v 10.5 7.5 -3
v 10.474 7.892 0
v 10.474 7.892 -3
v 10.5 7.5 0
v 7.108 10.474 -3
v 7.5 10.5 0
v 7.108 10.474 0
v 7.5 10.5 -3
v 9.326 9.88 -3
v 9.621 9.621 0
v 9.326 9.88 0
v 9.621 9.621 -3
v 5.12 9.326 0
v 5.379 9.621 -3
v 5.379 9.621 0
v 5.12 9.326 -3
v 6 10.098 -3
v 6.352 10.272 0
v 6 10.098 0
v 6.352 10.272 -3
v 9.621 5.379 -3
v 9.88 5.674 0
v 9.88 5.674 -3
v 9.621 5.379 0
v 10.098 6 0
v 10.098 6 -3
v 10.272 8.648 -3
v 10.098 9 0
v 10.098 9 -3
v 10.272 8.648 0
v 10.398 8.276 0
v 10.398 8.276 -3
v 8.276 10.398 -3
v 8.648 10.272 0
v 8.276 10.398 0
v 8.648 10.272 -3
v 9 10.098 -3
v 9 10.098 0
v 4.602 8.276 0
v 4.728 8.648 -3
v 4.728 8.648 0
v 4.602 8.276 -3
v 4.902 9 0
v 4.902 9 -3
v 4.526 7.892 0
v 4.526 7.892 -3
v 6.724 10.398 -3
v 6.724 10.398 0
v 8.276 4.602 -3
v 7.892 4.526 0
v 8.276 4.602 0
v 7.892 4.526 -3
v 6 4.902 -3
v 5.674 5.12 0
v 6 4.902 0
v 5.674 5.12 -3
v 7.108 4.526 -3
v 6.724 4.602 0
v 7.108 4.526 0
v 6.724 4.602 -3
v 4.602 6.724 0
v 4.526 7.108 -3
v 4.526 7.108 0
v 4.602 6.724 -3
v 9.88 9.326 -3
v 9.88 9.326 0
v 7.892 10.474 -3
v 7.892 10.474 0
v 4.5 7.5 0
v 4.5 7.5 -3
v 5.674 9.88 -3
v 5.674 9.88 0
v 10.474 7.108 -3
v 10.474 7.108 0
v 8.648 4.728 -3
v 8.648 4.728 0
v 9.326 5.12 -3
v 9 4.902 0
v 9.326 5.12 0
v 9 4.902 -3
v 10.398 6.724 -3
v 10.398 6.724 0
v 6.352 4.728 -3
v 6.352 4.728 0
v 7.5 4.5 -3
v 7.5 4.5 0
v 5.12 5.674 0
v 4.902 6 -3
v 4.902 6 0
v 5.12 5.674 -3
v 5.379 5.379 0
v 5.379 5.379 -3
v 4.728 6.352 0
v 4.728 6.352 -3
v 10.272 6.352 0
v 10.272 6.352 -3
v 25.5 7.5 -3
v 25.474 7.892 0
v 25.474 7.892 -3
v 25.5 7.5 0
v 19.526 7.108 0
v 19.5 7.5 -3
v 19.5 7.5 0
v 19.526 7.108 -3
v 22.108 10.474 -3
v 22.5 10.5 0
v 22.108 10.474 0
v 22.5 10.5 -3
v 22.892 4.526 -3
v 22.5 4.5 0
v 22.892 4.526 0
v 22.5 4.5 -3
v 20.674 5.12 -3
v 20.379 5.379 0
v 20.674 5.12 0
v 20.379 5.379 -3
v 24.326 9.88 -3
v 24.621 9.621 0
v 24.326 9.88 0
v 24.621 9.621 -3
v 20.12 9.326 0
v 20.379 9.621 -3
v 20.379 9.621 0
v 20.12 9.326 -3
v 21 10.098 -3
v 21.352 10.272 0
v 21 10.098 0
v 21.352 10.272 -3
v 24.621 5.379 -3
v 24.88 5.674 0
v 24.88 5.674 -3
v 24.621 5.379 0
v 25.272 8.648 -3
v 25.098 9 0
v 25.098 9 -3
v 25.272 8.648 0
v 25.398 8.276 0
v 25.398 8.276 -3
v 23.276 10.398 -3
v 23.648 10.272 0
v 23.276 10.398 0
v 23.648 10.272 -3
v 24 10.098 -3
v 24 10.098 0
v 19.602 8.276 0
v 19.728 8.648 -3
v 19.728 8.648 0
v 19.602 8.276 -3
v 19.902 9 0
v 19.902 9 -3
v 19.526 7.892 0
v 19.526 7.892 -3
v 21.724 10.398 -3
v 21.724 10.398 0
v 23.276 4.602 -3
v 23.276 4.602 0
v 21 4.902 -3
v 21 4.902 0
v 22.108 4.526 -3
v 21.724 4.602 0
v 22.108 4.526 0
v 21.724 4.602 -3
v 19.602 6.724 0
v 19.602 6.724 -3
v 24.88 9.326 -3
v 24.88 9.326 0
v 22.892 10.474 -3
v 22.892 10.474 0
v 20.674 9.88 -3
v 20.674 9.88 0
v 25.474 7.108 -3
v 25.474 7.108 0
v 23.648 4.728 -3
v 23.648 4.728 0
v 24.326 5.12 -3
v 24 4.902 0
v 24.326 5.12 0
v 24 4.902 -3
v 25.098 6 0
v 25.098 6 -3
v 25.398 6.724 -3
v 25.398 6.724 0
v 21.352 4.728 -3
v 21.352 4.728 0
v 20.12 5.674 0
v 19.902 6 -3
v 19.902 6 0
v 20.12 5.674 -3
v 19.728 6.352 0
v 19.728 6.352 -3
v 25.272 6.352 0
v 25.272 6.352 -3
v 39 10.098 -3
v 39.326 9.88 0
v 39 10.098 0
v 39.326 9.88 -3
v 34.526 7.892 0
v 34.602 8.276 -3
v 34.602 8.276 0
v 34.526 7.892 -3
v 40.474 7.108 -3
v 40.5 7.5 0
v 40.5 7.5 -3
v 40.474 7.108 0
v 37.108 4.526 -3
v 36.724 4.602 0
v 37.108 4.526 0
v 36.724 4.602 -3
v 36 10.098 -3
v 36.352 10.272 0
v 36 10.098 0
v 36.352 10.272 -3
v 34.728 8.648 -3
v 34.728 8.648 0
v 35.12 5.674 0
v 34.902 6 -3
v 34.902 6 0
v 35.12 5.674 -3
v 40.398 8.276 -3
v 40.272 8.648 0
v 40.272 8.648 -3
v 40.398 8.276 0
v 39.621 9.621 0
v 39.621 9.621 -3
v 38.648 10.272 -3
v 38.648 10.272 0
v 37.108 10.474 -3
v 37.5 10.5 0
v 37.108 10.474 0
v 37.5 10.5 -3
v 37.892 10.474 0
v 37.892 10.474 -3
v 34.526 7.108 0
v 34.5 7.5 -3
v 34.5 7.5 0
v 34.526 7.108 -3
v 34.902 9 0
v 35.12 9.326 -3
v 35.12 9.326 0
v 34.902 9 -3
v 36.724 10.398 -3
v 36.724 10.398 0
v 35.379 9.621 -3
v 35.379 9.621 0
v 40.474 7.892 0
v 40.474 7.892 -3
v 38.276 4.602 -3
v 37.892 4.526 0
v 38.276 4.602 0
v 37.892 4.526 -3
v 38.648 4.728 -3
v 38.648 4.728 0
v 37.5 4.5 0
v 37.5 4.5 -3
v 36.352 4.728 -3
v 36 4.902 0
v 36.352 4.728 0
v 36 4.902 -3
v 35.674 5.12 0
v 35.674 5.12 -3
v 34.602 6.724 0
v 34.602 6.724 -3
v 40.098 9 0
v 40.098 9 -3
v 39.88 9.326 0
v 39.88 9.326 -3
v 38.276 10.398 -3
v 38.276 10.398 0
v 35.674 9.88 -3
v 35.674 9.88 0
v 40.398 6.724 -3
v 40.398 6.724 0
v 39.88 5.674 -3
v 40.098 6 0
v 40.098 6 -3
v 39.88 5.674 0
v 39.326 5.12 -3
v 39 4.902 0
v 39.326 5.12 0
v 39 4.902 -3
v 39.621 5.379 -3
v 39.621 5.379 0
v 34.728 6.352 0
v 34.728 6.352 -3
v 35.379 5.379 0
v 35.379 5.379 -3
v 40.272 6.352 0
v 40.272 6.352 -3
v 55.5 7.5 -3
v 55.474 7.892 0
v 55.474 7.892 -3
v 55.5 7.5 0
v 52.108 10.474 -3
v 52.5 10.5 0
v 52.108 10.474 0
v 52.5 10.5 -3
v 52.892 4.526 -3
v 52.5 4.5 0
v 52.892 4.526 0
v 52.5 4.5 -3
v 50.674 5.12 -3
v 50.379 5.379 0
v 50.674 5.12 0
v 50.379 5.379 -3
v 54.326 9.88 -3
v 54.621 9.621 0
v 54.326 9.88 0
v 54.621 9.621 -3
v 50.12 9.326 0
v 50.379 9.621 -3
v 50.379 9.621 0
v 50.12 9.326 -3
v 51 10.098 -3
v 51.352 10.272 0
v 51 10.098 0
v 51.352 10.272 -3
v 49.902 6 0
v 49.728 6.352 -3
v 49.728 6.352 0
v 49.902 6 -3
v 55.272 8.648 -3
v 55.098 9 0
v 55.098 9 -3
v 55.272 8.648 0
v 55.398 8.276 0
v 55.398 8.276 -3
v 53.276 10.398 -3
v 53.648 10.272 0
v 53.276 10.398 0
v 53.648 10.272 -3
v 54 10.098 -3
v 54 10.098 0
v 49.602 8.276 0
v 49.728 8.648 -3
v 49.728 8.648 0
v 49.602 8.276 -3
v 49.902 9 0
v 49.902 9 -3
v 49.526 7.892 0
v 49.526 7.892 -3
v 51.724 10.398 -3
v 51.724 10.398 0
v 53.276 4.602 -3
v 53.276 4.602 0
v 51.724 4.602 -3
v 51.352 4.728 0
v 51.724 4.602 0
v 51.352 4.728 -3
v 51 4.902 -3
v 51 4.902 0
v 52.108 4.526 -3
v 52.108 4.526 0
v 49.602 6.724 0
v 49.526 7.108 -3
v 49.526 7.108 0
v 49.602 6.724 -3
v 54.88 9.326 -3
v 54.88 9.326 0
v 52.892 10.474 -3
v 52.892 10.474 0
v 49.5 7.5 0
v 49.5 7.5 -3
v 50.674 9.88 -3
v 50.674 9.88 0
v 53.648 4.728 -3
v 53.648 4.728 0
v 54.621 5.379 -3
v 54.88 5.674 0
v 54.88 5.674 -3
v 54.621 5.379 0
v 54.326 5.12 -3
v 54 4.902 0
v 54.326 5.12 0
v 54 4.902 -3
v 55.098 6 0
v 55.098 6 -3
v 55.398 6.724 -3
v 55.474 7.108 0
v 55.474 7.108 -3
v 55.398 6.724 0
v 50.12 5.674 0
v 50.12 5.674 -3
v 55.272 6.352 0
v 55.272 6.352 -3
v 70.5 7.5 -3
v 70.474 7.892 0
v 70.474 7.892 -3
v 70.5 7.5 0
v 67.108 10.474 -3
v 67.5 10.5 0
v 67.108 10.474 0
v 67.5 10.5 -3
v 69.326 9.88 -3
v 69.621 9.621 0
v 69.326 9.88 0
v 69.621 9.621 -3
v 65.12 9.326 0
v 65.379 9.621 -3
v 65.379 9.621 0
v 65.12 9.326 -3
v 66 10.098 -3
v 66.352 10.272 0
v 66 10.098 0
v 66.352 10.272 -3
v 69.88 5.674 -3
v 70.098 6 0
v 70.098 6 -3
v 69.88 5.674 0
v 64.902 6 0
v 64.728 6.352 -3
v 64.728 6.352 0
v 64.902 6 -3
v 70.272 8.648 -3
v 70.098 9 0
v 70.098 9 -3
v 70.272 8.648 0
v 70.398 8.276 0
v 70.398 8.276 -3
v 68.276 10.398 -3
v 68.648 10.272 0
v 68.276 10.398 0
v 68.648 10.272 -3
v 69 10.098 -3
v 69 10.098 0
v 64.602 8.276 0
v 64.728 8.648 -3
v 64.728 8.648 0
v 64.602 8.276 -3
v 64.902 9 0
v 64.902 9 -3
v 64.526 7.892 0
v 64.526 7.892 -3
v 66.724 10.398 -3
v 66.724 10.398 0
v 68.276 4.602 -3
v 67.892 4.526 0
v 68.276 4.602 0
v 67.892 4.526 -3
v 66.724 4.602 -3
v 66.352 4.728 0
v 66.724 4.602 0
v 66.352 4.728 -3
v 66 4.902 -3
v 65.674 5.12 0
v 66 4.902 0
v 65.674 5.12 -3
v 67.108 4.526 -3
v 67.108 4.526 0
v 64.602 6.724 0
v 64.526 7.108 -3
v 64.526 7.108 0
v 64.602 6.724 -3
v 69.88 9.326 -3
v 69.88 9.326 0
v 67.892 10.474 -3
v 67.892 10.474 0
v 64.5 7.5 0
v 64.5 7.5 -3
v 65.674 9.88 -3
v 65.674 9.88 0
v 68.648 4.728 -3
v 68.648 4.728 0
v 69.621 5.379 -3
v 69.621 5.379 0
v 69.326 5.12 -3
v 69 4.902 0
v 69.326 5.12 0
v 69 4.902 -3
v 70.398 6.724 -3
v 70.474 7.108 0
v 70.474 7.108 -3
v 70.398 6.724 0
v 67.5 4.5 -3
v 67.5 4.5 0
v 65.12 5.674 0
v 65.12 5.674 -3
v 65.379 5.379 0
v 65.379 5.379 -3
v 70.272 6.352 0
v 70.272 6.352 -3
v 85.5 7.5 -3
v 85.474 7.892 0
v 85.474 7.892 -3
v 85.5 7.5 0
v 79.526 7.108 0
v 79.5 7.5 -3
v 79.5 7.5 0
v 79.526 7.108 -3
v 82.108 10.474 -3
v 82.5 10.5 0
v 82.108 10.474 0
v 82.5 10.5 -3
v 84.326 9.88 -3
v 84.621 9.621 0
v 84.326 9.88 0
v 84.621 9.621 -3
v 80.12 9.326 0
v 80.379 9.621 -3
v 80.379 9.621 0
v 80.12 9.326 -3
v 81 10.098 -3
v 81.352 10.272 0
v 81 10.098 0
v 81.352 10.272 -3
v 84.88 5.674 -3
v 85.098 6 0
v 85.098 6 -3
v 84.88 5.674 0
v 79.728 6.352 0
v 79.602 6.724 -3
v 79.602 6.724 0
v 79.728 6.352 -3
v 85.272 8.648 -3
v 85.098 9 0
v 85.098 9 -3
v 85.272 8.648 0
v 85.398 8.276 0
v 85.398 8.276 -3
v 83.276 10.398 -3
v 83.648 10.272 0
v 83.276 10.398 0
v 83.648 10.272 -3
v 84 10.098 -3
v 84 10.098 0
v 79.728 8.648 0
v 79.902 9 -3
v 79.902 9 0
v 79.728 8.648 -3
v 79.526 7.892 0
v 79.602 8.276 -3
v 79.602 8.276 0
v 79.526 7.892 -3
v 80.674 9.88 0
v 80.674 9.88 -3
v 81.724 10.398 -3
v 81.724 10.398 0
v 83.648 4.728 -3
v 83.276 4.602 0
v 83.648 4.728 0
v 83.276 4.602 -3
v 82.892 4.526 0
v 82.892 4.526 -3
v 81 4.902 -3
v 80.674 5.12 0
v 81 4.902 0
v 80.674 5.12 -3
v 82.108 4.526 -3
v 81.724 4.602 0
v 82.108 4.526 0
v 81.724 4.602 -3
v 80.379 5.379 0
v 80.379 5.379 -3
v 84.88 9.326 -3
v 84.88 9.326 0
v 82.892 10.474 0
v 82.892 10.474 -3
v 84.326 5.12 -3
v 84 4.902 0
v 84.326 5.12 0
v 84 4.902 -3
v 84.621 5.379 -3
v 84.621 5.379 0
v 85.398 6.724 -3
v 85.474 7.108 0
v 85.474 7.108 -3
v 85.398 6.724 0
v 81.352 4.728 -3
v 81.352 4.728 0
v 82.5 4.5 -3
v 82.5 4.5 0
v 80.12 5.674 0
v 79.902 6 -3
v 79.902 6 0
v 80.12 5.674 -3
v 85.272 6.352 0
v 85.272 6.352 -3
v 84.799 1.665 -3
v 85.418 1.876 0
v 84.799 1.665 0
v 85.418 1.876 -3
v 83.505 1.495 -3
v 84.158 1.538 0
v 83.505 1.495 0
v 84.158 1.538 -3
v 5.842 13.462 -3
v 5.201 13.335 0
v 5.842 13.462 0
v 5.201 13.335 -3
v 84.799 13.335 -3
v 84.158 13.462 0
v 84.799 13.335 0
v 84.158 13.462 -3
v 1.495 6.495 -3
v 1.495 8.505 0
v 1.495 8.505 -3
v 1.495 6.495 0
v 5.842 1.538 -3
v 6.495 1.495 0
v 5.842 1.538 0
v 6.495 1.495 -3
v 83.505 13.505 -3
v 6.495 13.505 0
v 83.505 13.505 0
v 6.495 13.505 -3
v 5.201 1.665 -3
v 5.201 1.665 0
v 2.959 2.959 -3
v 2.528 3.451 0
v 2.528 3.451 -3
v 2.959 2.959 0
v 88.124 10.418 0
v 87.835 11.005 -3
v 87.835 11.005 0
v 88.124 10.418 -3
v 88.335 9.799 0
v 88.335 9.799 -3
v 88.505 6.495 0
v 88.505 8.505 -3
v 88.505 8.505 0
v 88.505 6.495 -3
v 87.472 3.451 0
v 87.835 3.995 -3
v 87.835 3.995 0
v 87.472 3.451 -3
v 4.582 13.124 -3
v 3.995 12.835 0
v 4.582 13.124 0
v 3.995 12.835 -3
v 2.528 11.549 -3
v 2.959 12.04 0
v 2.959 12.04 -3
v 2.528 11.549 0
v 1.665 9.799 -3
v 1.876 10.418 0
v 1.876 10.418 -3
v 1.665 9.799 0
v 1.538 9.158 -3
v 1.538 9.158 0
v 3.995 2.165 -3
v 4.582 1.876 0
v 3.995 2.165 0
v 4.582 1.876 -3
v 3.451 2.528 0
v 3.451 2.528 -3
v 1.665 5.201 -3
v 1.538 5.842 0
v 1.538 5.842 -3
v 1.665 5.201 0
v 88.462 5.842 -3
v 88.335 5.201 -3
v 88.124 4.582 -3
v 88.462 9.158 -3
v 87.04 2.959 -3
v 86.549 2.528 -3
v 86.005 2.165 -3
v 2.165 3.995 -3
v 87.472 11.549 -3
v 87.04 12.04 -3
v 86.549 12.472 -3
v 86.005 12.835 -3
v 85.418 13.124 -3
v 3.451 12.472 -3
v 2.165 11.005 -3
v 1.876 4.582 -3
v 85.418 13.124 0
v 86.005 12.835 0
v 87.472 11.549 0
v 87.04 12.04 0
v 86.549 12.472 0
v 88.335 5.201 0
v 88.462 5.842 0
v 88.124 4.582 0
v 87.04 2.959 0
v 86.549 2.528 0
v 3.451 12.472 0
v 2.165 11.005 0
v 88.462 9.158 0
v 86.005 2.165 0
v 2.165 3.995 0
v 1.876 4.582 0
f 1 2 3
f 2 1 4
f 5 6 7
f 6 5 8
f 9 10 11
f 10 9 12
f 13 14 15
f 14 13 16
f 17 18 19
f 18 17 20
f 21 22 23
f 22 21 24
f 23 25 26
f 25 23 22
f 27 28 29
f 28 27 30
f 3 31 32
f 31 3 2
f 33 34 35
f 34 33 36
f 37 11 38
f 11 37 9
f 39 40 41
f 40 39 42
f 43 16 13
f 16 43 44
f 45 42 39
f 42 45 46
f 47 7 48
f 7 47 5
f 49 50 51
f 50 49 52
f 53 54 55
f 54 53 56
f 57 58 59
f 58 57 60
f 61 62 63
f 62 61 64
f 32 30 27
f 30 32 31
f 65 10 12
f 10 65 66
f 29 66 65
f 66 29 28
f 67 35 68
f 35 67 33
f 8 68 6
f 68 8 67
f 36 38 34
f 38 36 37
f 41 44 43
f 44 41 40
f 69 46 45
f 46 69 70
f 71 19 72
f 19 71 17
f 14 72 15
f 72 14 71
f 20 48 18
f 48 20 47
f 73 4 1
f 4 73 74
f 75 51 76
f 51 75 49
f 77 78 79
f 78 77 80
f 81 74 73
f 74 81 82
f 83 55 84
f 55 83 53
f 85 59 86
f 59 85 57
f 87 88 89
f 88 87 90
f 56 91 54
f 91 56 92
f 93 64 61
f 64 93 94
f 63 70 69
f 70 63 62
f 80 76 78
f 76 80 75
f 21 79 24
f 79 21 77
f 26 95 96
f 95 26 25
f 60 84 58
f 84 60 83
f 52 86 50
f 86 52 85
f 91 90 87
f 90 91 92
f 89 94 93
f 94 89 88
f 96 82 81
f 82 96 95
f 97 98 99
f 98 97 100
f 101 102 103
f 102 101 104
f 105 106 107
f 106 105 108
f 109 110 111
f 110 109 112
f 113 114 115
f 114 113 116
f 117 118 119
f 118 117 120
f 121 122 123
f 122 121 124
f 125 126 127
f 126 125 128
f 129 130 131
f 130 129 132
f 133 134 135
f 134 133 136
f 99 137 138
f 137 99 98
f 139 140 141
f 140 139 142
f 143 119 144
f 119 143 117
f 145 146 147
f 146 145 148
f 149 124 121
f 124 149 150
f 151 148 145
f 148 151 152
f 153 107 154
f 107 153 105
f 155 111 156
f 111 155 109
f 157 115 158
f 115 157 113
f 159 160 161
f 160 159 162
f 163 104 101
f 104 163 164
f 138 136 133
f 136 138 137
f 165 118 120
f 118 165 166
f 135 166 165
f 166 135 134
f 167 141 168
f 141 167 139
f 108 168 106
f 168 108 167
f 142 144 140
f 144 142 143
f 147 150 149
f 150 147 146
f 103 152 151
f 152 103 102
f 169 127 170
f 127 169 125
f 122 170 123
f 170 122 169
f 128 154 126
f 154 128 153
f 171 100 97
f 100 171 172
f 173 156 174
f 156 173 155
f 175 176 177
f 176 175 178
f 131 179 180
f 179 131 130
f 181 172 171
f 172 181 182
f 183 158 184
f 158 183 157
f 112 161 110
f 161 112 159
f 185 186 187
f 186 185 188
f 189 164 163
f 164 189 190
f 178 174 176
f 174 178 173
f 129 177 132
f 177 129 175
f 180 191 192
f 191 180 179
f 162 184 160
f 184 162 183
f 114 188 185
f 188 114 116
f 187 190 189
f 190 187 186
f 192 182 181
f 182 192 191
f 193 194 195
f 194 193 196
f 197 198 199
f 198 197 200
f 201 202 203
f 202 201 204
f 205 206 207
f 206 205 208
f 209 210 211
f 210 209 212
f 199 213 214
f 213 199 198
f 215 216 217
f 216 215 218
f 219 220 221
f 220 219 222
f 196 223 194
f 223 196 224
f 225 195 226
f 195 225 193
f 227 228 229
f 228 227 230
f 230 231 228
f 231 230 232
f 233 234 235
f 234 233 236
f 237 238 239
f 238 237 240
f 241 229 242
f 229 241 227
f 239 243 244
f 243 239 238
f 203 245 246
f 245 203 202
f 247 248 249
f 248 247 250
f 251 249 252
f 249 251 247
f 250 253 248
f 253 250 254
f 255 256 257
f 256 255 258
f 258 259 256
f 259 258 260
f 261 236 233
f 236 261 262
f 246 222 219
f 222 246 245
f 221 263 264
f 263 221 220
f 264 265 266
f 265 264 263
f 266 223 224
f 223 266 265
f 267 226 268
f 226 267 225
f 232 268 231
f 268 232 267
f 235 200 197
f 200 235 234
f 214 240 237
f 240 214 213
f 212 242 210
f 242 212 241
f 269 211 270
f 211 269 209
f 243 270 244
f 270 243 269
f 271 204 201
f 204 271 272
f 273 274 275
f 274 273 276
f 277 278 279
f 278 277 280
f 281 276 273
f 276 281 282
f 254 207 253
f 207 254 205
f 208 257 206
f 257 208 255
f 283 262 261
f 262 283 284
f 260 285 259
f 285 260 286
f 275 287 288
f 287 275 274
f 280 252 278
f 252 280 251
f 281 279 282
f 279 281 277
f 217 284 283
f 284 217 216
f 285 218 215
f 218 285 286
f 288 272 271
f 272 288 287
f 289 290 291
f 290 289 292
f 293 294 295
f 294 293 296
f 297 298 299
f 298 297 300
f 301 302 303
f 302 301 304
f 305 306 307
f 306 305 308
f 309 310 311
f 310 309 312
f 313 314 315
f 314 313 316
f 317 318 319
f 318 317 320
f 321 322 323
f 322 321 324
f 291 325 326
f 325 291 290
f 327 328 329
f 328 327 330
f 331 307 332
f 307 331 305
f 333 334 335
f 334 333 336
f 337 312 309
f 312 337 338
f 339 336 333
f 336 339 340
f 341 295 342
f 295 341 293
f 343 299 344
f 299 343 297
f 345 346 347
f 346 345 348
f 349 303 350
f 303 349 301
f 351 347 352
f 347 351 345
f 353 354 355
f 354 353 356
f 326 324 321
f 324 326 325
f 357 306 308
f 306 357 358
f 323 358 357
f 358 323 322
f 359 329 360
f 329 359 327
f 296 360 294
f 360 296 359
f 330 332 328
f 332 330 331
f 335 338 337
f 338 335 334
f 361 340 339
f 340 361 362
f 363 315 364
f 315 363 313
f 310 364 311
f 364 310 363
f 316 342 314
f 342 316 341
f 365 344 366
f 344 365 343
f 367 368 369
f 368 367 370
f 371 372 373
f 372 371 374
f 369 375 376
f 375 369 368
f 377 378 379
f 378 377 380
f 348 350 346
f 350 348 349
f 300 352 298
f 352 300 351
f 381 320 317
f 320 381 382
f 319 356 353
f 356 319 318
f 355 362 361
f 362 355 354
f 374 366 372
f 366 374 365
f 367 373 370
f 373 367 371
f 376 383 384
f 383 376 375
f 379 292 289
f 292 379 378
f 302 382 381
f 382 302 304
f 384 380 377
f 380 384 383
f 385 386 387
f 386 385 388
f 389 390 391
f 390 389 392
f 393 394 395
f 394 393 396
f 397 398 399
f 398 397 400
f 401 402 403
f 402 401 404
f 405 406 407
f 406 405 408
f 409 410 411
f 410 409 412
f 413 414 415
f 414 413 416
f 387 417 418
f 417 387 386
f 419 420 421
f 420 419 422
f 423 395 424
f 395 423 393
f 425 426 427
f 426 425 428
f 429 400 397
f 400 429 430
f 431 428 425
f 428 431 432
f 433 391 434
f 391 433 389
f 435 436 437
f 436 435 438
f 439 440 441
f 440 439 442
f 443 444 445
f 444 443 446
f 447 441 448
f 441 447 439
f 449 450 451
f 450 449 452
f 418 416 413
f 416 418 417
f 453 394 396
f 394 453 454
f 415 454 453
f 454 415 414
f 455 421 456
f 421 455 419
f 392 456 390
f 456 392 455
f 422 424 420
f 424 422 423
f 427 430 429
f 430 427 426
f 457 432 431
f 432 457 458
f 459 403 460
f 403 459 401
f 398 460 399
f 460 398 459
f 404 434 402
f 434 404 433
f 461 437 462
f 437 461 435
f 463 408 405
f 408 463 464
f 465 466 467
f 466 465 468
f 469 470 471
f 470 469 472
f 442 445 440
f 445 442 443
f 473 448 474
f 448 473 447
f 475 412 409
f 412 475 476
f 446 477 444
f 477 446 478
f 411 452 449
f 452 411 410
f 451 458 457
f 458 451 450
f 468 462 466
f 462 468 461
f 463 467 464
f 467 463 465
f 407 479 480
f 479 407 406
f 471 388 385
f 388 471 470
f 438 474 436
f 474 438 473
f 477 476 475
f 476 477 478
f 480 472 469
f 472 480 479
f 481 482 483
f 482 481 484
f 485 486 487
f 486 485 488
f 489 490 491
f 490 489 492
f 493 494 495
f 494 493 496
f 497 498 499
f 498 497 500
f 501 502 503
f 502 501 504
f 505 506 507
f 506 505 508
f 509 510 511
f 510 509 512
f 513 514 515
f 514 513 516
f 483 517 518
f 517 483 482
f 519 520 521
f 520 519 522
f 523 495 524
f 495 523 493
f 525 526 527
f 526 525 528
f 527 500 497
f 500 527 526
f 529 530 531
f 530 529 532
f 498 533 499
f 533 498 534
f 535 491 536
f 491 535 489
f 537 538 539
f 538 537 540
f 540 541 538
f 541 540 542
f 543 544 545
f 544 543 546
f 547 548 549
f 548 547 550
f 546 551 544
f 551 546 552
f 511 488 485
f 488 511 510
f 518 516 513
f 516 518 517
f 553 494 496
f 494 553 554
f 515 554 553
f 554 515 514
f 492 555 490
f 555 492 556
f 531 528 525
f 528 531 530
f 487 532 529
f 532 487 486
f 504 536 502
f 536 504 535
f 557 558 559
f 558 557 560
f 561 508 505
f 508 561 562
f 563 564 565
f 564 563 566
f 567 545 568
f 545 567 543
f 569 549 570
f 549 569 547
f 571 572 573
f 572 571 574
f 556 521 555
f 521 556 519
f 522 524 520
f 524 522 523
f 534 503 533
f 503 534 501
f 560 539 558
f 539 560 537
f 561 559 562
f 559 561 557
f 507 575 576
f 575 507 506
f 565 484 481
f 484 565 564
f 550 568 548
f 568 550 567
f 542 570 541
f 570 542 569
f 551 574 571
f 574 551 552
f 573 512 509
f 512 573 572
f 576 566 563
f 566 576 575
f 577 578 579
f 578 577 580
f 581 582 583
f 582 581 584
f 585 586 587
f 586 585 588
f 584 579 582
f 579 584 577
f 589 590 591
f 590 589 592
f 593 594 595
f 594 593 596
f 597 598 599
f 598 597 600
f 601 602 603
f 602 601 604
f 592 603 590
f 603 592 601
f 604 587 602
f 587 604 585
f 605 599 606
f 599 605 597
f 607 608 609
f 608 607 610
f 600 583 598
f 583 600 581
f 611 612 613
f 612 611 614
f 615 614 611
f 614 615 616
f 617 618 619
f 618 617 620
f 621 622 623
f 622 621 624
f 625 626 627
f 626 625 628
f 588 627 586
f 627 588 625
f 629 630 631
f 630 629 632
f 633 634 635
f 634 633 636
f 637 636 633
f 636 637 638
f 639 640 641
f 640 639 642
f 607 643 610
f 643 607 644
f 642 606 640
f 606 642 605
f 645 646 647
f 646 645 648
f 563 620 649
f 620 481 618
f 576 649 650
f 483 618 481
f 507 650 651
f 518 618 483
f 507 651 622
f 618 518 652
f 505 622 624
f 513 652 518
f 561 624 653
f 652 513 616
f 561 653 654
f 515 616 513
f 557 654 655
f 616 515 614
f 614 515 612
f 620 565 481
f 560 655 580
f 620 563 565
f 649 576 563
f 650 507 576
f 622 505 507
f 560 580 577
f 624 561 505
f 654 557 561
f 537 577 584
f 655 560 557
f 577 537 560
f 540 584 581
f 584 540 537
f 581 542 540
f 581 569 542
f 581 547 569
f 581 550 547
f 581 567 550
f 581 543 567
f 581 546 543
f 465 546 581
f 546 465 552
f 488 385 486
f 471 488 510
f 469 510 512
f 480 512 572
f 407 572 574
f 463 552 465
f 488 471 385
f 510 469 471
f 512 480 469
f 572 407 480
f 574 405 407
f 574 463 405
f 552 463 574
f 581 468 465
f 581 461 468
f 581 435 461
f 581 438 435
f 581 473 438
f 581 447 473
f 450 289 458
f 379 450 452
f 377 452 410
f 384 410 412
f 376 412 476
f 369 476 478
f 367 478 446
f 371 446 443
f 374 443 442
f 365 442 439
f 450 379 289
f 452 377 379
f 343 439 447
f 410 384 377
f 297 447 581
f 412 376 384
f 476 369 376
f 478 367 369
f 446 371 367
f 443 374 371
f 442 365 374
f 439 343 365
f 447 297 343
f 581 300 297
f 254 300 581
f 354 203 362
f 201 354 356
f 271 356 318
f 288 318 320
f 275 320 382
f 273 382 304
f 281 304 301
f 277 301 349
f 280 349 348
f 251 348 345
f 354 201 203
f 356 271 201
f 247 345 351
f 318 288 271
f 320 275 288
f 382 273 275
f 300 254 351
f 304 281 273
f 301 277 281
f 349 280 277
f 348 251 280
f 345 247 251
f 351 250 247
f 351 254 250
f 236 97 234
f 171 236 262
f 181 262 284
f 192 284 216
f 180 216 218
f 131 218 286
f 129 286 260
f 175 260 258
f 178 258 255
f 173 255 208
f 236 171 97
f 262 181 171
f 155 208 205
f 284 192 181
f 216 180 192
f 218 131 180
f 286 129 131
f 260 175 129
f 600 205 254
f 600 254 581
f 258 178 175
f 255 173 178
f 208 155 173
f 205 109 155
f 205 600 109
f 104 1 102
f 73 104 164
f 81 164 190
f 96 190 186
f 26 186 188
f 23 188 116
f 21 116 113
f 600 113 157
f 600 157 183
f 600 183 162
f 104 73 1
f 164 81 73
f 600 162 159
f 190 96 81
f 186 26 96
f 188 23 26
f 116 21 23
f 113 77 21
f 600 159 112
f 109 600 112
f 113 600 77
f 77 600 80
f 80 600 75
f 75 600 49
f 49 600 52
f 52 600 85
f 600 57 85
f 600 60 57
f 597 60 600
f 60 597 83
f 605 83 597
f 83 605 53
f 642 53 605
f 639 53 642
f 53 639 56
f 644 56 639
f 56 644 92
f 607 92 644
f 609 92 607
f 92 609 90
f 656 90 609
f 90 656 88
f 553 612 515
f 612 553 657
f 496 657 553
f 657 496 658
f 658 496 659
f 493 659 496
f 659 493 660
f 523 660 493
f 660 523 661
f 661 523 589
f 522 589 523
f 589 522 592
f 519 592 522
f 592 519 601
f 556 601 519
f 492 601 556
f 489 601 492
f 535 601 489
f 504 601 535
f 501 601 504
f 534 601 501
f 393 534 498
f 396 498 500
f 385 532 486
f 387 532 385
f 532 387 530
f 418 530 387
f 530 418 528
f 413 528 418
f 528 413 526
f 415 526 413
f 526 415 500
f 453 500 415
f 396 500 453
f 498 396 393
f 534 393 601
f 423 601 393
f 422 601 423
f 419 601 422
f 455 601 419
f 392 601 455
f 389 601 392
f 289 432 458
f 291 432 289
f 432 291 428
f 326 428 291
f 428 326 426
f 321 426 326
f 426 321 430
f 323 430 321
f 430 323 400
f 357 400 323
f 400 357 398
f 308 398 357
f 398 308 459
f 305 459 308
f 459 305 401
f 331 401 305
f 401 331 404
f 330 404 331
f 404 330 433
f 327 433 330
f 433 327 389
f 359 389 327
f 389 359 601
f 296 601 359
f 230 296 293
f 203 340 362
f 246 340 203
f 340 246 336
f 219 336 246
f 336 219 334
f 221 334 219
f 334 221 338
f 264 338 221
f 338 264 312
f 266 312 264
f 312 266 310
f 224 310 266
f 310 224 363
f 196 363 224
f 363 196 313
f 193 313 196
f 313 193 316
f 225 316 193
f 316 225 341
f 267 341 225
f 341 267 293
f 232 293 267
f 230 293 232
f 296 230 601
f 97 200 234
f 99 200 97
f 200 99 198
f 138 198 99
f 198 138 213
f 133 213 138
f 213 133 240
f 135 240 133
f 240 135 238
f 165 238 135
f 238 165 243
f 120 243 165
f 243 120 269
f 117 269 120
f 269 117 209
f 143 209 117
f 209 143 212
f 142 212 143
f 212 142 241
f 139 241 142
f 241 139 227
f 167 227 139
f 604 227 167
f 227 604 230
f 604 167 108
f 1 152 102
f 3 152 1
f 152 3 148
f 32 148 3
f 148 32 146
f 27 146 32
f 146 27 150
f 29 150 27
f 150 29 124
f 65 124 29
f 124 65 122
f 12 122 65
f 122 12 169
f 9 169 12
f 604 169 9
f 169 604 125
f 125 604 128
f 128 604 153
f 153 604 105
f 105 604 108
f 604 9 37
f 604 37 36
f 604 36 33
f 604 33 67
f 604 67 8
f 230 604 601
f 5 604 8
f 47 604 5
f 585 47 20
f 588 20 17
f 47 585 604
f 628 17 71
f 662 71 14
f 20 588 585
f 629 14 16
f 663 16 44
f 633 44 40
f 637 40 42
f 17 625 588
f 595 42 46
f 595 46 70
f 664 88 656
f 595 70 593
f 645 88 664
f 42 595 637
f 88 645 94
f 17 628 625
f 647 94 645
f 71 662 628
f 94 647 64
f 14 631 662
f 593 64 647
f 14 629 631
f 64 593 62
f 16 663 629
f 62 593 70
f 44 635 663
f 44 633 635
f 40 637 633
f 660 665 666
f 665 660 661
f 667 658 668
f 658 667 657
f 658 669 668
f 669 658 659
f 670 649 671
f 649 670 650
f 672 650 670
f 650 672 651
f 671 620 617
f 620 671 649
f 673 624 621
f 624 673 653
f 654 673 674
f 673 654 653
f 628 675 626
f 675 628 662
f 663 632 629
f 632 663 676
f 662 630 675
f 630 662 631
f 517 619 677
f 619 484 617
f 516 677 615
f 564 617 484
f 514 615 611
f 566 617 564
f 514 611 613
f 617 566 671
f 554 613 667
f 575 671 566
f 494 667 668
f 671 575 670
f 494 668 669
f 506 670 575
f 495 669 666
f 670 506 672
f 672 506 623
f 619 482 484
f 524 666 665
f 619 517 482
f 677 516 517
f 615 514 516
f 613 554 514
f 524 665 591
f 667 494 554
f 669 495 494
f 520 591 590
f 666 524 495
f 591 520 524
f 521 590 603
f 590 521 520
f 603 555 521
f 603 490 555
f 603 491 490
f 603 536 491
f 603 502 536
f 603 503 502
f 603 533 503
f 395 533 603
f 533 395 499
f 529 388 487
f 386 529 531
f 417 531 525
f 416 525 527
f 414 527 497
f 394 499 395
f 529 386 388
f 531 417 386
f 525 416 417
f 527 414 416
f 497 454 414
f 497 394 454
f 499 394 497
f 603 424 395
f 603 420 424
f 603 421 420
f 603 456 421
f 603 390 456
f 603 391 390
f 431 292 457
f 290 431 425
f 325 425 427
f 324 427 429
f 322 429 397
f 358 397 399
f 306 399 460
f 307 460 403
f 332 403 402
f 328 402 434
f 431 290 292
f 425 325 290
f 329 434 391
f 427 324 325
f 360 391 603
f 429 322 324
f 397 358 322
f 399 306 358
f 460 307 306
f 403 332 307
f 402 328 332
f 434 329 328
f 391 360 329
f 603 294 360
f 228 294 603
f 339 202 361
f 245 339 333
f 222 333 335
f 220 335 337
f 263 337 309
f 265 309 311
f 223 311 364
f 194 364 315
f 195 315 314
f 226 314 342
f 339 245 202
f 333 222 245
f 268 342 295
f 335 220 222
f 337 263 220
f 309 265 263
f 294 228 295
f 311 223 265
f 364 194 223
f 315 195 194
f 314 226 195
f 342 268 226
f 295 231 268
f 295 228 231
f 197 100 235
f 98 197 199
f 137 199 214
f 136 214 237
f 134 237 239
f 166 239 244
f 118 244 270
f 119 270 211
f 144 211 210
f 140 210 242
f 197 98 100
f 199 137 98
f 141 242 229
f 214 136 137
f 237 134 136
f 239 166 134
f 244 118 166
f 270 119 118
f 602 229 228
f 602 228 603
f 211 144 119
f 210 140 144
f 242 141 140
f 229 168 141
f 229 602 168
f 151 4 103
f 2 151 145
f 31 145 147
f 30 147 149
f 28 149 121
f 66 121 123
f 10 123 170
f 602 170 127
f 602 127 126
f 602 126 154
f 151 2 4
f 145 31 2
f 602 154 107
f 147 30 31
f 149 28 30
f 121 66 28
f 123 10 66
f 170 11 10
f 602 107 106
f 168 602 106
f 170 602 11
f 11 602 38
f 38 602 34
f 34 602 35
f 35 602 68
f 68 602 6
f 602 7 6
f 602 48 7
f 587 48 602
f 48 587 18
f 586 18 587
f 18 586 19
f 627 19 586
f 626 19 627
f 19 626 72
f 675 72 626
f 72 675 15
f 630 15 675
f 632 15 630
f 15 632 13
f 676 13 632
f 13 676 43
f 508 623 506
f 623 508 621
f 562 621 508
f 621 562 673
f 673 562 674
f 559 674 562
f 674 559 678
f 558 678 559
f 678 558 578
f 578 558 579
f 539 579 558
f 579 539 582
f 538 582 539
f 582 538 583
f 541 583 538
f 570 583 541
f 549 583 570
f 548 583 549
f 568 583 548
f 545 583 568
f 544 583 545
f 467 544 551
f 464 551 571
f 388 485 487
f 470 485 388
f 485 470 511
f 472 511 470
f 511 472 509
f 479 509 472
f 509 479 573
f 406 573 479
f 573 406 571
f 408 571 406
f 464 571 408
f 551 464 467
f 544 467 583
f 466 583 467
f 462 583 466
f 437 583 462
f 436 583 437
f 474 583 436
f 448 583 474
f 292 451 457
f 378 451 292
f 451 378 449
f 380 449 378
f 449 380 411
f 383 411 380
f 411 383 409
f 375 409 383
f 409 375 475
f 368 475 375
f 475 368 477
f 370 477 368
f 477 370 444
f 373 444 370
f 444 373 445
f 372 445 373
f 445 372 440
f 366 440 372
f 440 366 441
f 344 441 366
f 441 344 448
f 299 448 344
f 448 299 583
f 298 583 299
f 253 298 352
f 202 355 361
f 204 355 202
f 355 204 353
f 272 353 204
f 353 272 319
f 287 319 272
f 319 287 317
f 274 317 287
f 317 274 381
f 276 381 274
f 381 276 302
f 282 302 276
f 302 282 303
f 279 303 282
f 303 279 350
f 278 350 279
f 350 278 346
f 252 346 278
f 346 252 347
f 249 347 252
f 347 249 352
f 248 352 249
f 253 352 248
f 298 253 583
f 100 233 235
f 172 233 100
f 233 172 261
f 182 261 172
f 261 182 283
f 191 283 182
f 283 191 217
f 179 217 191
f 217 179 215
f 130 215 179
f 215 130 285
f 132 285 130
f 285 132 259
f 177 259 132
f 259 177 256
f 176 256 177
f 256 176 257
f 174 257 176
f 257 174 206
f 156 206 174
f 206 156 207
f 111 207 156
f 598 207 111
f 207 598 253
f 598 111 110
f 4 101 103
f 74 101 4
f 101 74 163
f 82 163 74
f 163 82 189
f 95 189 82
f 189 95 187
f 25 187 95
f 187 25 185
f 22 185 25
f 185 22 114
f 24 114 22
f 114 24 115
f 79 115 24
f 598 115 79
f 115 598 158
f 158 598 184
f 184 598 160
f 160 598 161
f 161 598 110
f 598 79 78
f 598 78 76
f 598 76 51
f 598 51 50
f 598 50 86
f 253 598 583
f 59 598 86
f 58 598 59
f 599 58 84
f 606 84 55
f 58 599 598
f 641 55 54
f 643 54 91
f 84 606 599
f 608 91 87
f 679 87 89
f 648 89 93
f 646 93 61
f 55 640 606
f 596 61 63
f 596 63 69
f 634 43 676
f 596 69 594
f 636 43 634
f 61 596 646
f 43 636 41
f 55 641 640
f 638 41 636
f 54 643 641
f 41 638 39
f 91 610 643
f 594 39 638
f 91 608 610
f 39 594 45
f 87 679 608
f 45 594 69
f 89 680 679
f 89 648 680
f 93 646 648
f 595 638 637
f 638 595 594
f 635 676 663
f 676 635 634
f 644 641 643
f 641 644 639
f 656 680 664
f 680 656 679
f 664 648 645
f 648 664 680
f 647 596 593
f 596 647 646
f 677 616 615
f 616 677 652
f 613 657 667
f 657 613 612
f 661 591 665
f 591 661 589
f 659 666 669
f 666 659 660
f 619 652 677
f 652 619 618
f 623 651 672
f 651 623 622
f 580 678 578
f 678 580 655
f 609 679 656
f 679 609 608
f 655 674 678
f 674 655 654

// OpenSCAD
// Generated by SolidPython 1.1.3 on 2022-09-14 10:42:13
$fn = 48;


difference() {
	union() {
		color(alpha = 1.0000000000, c = "Gold") {
			translate(v = [45.0000000000, 7.5000000000, 0]) {
				rotate(a = [0, 0, 0]) {
					translate(v = [0, 0, -3]) {
						linear_extrude(height = 3) {
							offset(r = 5) {
								square(center = true, size = [77.0100000000, 2.0100000000]);
							}
						}
					}
				}
			}
		}
	}
	union() {
		color(alpha = 1.0000000000, c = "Gold") {
			translate(v = [7.5000000000, 7.5000000000, 0]) {
				rotate(a = [0, 0, 0]) {
					translate(v = [0, 0, -250]) {
						cylinder(h = 500, r = 3.0000000000);
					}
				}
			}
		}
		color(alpha = 1.0000000000, c = "Gold") {
			translate(v = [22.5000000000, 7.5000000000, 0]) {
				rotate(a = [0, 0, 0]) {
					translate(v = [0, 0, -250]) {
						cylinder(h = 500, r = 3.0000000000);
					}
				}
			}
		}
		color(alpha = 1.0000000000, c = "Gold") {
			translate(v = [37.5000000000, 7.5000000000, 0]) {
				rotate(a = [0, 0, 0]) {
					translate(v = [0, 0, -250]) {
						cylinder(h = 500, r = 3.0000000000);
					}
				}
			}
		}
		color(alpha = 1.0000000000, c = "Gold") {
			translate(v = [52.5000000000, 7.5000000000, 0]) {
				rotate(a = [0, 0, 0]) {
					translate(v = [0, 0, -250]) {
						cylinder(h = 500, r = 3.0000000000);
					}
				}
			}
		}
		color(alpha = 1.0000000000, c = "Gold") {
			translate(v = [67.5000000000, 7.5000000000, 0]) {
				rotate(a = [0, 0, 0]) {
					translate(v = [0, 0, -250]) {
						cylinder(h = 500, r = 3.0000000000);
					}
				}
			}
		}
		color(alpha = 1.0000000000, c = "Gold") {
			translate(v = [82.5000000000, 7.5000000000, 0]) {
				rotate(a = [0, 0, 0]) {
					translate(v = [0, 0, -250]) {
						cylinder(h = 500, r = 3.0000000000);
					}
				}
			}
		}
	}
}
/***********************************************
*********      SolidPython code:      **********
************************************************
 
import subprocess

from solid.objects import *
from solid import scad_render_to_file, scad_render

import os

##################################################################################################################################################
##################################################################################################################################################
##################################################################################################################################################
##################################################################################################################################################
######  DIMENSION STUFF
##################################################################################################################################################
##################################################################################################################################################
##################################################################################################################################################
##################################################################################################################################################


mode = "3DPR"
#mode = "LAZE"
#mode = "TURE"
#mode = ""


######  Countersunk
countersunkM = []
WIDTH = 0
DEPTH = 1
countersunkM1width = 0; countersunkM1depth = 0; countersunkM2width = 0; countersunkM2depth = 0
countersunkM3width = 0
countersunkM3depth = 0
countersunkM4width = 0
countersunkM4depth = 0
countersunkM5width = 0
countersunkM5depth = 0
countersunkM6width = 0
countersunkM6depth = 0

######  Holes
holeM = []
holeM1 = 0
holeM2 = 0
holeM3 = 0
holeM4 = 0
holeM5 = 0
holeM6 = 0

######  Nuts
nutM = []
NUTWIDTH = 0
NUTDEPTH = 1
nutM1width = 0
nutM1depth = 0
nutM2width = 0
nutM2depth = 0
nutM3width = 0
nutM3depth = 0
nutM4width = 0
nutM4depth = 0
nutM5width = 0
nutM5depth = 0
nutM6width = 0
nutM6depth = 0

######  OOEB
ooebPinWidth = 0
ooebPinWidthWide = 0


######  Colors
colDefault = "Gold"

colOOEBbase = colDefault

colLEDRed = "red"
colWire = "gray"
    ######  Resistor
colRes = list()
colResistor = "beige"

colResBlack = "black"
colRes.append(colResBlack)
colResBrown = "brown"
colRes.append(colResBrown)
colResRed = "red"
colRes.append(colResRed)
colResOrange = "orange"
colRes.append(colResOrange)
colResYellow = "yellow"
colRes.append(colResYellow)
colResGreen = "green"
colRes.append(colResGreen)
colResBlue = "blue"
colRes.append(colResBlue)
colResPurple = "purple"
colRes.append(colResPurple)
colResGray = "gray"
colRes.append(colResGray)
colResWhite = "white"
colRes.append(colResWhite)





def changeMode(m="3DPR"):
    #print("####################################################      CHANGING MODES TO: " + m)
    global mode
    mode = m
    ######  Countersunk
    global countersunkM, countersunkM1width, countersunkM1depth, countersunkM2width, countersunkM2depth, countersunkM3width, countersunkM3depth, countersunkM4width, countersunkM4depth, countersunkM5width, countersunkM5depth, countersunkM6width, countersunkM6depth
    countersunkM = []
    countersunkM.append([0,0])
    countersunkM1width = 0 if mode== "3DPR" else 0
    countersunkM1depth = 0 if mode== "3DPR" else 0
    countersunkM.append([countersunkM1width,countersunkM1depth])
    countersunkM2width = 0 if mode== "3DPR" else 0
    countersunkM2depth = 0 if mode== "3DPR" else 0
    countersunkM.append([countersunkM2width,countersunkM2depth])
    countersunkM3width = 5.5/2+0.6 if mode== "3DPR" else 5.5/2
    countersunkM3depth = 1.7 if mode== "3DPR" else 1.7
    countersunkM.append([countersunkM3width,countersunkM3depth])
    countersunkM4width = 0 if mode== "3DPR" else 0
    countersunkM4depth = 0 if mode== "3DPR" else 0
    countersunkM.append([countersunkM4width,countersunkM4depth])
    countersunkM5width = 0 if mode== "3DPR" else 0
    countersunkM5depth = 0 if mode== "3DPR" else 0
    countersunkM.append([countersunkM5width,countersunkM5depth])
    countersunkM6width = 0 if mode== "3DPR" else 0
    countersunkM6depth = 0 if mode== "3DPR" else 0
    countersunkM.append([countersunkM6width,countersunkM6depth])
    ######  Holes
    global holeM, holeM1, holeM2, holeM3, holeM4, holeM5, holeM6, holeM7, holeM8
    holeM = []
    holeM1 = 1.2/2 if mode== "3DPR" else 1/2
    holeM2 = 2.3/2 if mode== "3DPR" else 2/2
    holeM3 = 3.4/2 if mode== "3DPR" else 3/2
    holeM4 = 4.4/2 if mode== "3DPR" else 4/2
    holeM5 = 5.4/2 if mode== "3DPR" else 5/2
    holeM6 = 6.5/2 if mode== "3DPR" else 6/2
    holeM7 = 7.5/2 if mode== "3DPR" else 7/2
    holeM8 = 8.6/2 if mode== "3DPR" else 8/2
    holeM.append(0)
    holeM.append(holeM1)
    holeM.append(holeM2)
    holeM.append(holeM3)
    holeM.append(holeM4)
    holeM.append(holeM5)
    holeM.append(holeM6)
    holeM.append(holeM7)
    holeM.append(holeM8)
    #####  Nuts
    global nutM, nutM1width, nutM1depth, nutM2width, nutM2depth, nutM3width, nutM3depth, nutM4width, nutM4depth, nutM5width, nutM5depth, nutM6width, nutM6depth
    nutM = []
    nutM.append([0,0]) 
    #M1 Nut
    nutM1width = 0
    nutM1depth = 0
    nutM.append([nutM1width,nutM1depth])    
    #M2 Nut
    nutM2width = 0
    nutM2depth = 0
    nutM.append([nutM2width,nutM2depth])    
    #M3 Nut
    nutM3width = 6.05 if mode== "3DPR" else 5.5
    nutM3depth = 2.5 if mode== "3DPR" else 2.5
    nutM.append([nutM3width,nutM3depth])    
    #M4 Nut
    nutM4width = 0
    nutM4depth = 0
    nutM.append([nutM4width,nutM4depth])    
    #M5 Nut
    nutM5width = 0
    nutM5depth = 0
    nutM.append([nutM5width,nutM5depth])    
    #M6 Nut
    nutM6width = 11 if mode== "3DPR" else 10
    nutM6depth = 5 if mode== "3DPR" else 5
    nutM.append([nutM6width,nutM6depth])    

    ######  OOEB
    global ooebPinWidth,  ooebPinWidthWide

    ooebPinWidth = 0.6
    if(mode=="3DPR" or mode=="LAZE"):
        ooebPinWidth = 0.6 + 0.6
    ooebPinWidthWide = 1.2
    if(mode=="3DPR" or mode=="LAZE"):
        ooebPinWidthWide = 1.2 + 0.6


changeMode()


""""    
holeM12D = s=="3DPR" ? 1.4/2 : 1.2/2;
holeM16D = s=="3DPR" ? 1.8/2 : 1.6/2;
holeM2 = s=="3DPR" ? 2.3/2 : 2/2;
holeM25D = s=="3DPR" ? 2.8/2 : 2.5/2;
holeM27D = s=="3DPR" ? 3.1/2 : 2.7/2;    
holeM3 = s=="3DPR" ? 3.4/2 : 3/2;
holeM35D = s=="3DPR" ? 3.9/2 : 35/2;
holeM4 = s=="3DPR" ? 4.4/2 : 4/2;
holeM5 = s=="3DPR" ? 5.4/2 : 5/2;
holeM6 = s=="3DPR" ? 6.5/2 : 6/2;
holeM6Minus = s=="3DPR" ? 5.8/2 : 5.9/2;
holeM7 = s=="3DPR" ? 7.5/2 : 7/2;
holeM8 = s=="3DPR" ? 8.6/2 : 8/2;
holeM9 = s=="3DPR" ? 9.6/2 : 9/2;
holeM10 = s=="3DPR" ? 10.6/2 : 10/2;
holeM11 = s=="3DPR" ? 11.6/2 : 11/2;
holeM12 = s=="3DPR" ? 12.6/2 : 12/2;
holeM13 = s=="3DPR" ? 13.6/2 : 13/2;
holeM14 = s=="3DPR" ? 14.6/2 : 14/2;
holeM15 = s=="3DPR" ? 15.6/2 : 15/2;
holeM16 = s=="3DPR" ? 16.6/2 : 16/2;
holeM17 = s=="3DPR" ? 17.6/2 : 17/2;
holeM18 = s=="3DPR" ? 18.6/2 : 18/2;
holeM19 = s=="3DPR" ? 19.6/2 : 19/2;
holeM20 = s=="3DPR" ? 20.6/2 : 20/2;
"""

##################################################################################################################################################
##################################################################################################################################################
##################################################################################################################################################
##################################################################################################################################################
######  REGULAR STUFF
##################################################################################################################################################
##################################################################################################################################################
##################################################################################################################################################
##################################################################################################################################################


def setMode(mode="3DPR"):
    changeMode(mode)

def getMode():
    return mode



def saveToScad(fileName, parts):
    dir =  os.path.dirname(os.path.abspath(fileName))
    Path(dir).mkdir(parents=True, exist_ok=True)
    file_out = scad_render_to_file(parts, fileName, file_header=f'$fn = 48;')


def saveToDxf(fileIn, fileOut=""):
    if fileOut == "":
        fileOut = fileIn.replace(".scad",".dxf")
    saveToFile(fileIn, fileOut)
    
def saveToPng(fileIn, fileOut="",extra="--render"):
    if fileOut == "":
        fileOut = fileIn.replace(".scad",".png")
    saveToFile(fileIn, fileOut)

def saveToStl(fileIn, fileOut=""):
    if fileOut == "":
        fileOut = fileIn.replace(".scad",".stl")
    saveToFile(fileIn, fileOut)
    
def saveToSvg(fileIn, fileOut=""):
    if fileOut == "":
        fileOut = fileIn.replace(".scad",".svg")
    saveToFile(fileIn, fileOut)

def saveToFile(fileIn, fileOut,extra=""):
    extra = extra + " --colorscheme Tomorrow"

    launchStr = 'openscad -o "' + fileOut + '"' + extra + ' "' + fileIn + '"'
    print("            saveToFile launch string: " + launchStr)
    subprocess.run(launchStr)
    x=0



def insert(item,pos=[None,None,None],x=0,y=0,z=0,ex=0,size=[None,None,None],length=0,rot=[None,None,None],rotX=0,rotY=0,rotZ=0,width=0,height=0,depth=100,rad=0,rad2=0,color=colDefault,alpha=1,OOwidth=0,OOheight=0,holes=True,negative=True, name=""):
    return OPSCInsert(item,pos,x,y,z,ex,size,length,rot,rotX,rotY,rotZ,width,height,depth,rad,rad2,color,alpha,OOwidth,OOheight,holes,negative,name)


def OPSCInsert(item,pos=[None,None,None],x=0,y=0,z=0,ex=0,size=[None,None,None],length=0,rot=[None,None,None],rotX=0,rotY=0,rotZ=0,width=0,height=0,depth=100,rad=0,rad2=0,col=colDefault,alpha=1,OOwidth=0,OOheight=0,holes=True,negative=True, name=""):
    
    """
        color(color,alpha){
            translate([x,y,z]){
                    rotate([rotX,rotY,rotZ]){
    """
    returnValue = ""

    #print(pos)

    if pos[0] != None:
        x=pos[0]
        y=pos[1]
        z=pos[2]
    if rot[0] != None:
        rotX=rot[0]
        rotY=rot[1]
        rotZ=rot[2]
    
    returnValue = color(col)(translate((x,y,z))(
                            rotate((rotX,rotY,rotZ))(
                                OPSCInsertIf(item,pos,x,y,z,ex,size,length,rot,rotX,rotY,rotZ,width,height,depth,rad,rad2,col,alpha,OOwidth,OOheight,holes,negative,name)
                            )
                        ))
                
    

    return returnValue

def OPSCInsertIf(item,pos=[None,None,None],x=0,y=0,z=0,ex=0,size=[None,None,None],length=0,rot=[None,None,None],rotX=0,rotY=0,rotZ=0,width=0,height=0,depth=100,rad=0,rad2=0,color=colDefault,alpha=1,OOwidth=0,OOheight=0,holes=True,negative=True, name=""):
    returnValue = cube([10,10,10])

    if size[0] != None:
        width=size[0]
        height=size[1]
        depth=size[2]

    #print("    OPSCInsert item:" + str(item) + " at:[" + str(x) + "," + str(y) + "," + str(z) + "] size: [" + str(width) + "," + str(height) + "," + str(depth) + "]")

    if(item=="cube"):
        returnValue =  translate([0,0,-depth/2])(cube([width,height,depth],center=True))
    elif(item=="cylinder"):        
        returnValue = translate([0,0,-depth/2])(cylinder(r=rad,h=depth,center=True))
    elif(item=="sphere"):        
        returnValue = translate([0,0,-rad])(sphere(r=rad))
    elif(item=="plane"):
        if depth == 100:
            returnValue = insert("cube",size=[1000,1000,0.1],color=color)            
        else:
            returnValue = insert("cube",size=[1000,1000,depth],color=color)                        
    elif(item=="cubeRounded"):
        if(rad == 0):
                            rad = 5
        returnValue =  translate([0,0,-depth])(
                        linear_extrude(height=depth)(                        
                            offset(r=rad)(
                                square((width-rad*2+.01,height-rad*2+.01),center=True)
                                )
                            )
        )
    ######  Countersunk
    elif(item == "countersunkM1" or item == "csM1" ):
        returnValue = OSPCgetCountersunk(rad=1)
    elif(item == "countersunkM2" or item == "csM2" ):
        returnValue = OSPCgetCountersunk(rad=2)
    elif(item == "countersunkM3" or item == "csM3" ):
        returnValue = OSPCgetCountersunk(rad=3)
    elif(item == "countersunkM4" or item == "csM4" ):
        returnValue = OSPCgetCountersunk(rad=4)
    elif(item == "countersunkM5" or item == "csM5" ):
        returnValue = OSPCgetCountersunk(rad=5)
    elif(item == "countersunkM6" or item == "csM6" ):
        returnValue = OSPCgetCountersunk(rad=6)
    elif(item == "countersunk" or item == "cs"):
        returnValue = OSPCgetCountersunk(rad=rad)


    ######  Holes    
    elif(item == "holeM1"):
        returnValue = OSPCgetHole(rad=1)
    elif(item == "holeM2"):
        returnValue = OSPCgetHole(rad=2)
    elif(item == "holeM3"):
        returnValue = OSPCgetHole(rad=3)
    elif(item == "holeM4"):
        returnValue = OSPCgetHole(rad=4)
    elif(item == "holeM5"):
        returnValue = OSPCgetHole(rad=5)
    elif(item == "holeM6"):
        returnValue = OSPCgetHole(rad=6)
    elif(item == "hole"):
        returnValue = OSPCgetHole(rad=rad)

    ######  Nuts
    elif(item == "nutM1"):
        returnValue = OSPCgetNut(rad=1,depth=depth)
    elif(item == "nutM2"):
        returnValue = OSPCgetNut(rad=2,depth=depth)
    elif(item == "nutM3"):
        returnValue = OSPCgetNut(rad=3,depth=depth)
    elif(item == "nutM4"):
        returnValue = OSPCgetNut(rad=4,depth=depth)
    elif(item == "nutM5"):
        returnValue = OSPCgetNut(rad=5,depth=depth)
    elif(item == "nutM6"):
        returnValue = OSPCgetNut(rad=6,depth=depth)
    elif(item == "nut"):
        returnValue = OSPCgetNut(rad=rad,depth=depth)
    return returnValue

                

def OSPCgetHole(rad):
    return translate([0,0,-250])(cylinder(r=holeM[rad],h=500))

def OSPCgetNut(rad,depth):
    depth = nutM[rad][NUTDEPTH] if depth==100 else depth
    returnValue = OPSChexagon(nutM[rad][NUTWIDTH],depth=depth)
    return returnValue

def OSPCgetCountersunk(rad):
    depth=countersunkM[rad][DEPTH]
    returnValue = translate([0,0,-depth])(cylinder(h=depth,r2=countersunkM[rad][WIDTH],r1=holeM[rad]))
    return returnValue

def OPSChexagon(width,depth):
    cutter = item()
    wid=width*2
    cutter.addPos(insert("cube",pos=[wid/2+width/2,0,0],size=[wid,wid,depth]))
    cutter.addPos(insert("cube",pos=[-wid/2-width/2,0,0],size=[wid,wid,depth]))

    cut = cutter.getPart()
    #print(depth)
    returnValue = difference()(
        translate([0,0,-depth/2])(cube([wid,wid,depth],center=True)),
        cut,
        rotate([0,0,60])(cut),
        rotate([0,0,-60])(cut)
    )

    return returnValue




class item:

    def __init__(self):
        self.posItems=list()
        self.negItems=list()

    def isEmpty(self):        
        testString = scad_render(self.getPart())
        #print("test String length: " + str(len(testString)))
        returnValue = False
        if len(testString) == 270:            
            returnValue = True
        return returnValue

    def addPos(self,part):
        self.posItems.append(part)
    def addNeg(self,part):
        self.negItems.append(part)

    def getPart(self):
        returnValue = difference()(
            union()(self.posItems),
            union()(self.negItems)
        )
        return returnValue

    def getLaser(self,start=0,layers=1,thickness=-3,tileDif=200):
        rv= []

        for x in range(layers):
            rv.append(translate([0,x*tileDif,0])(
                    projection()(
                        intersection()(
                            insert("plane",z=start+x*thickness),
                            self.getPart()
                        )
                    )
            )
            )
        return union()(rv)

    def getSplit(self,start=0,depth=6,tileDif=200):
        rv= []

        rv.append(translate([0,0,0])(
            intersection()(
                insert("cube",size=[100,100,depth],z=start),
                self.getPart()
            )
        )
        )

        rv.append(translate([0,tileDif,depth])(
            intersection()(
                insert("cube",size=[100,100,depth],z=start-depth),
                self.getPart()
            )
        )
        )        
        return union()(rv)


 
 
************************************************/
